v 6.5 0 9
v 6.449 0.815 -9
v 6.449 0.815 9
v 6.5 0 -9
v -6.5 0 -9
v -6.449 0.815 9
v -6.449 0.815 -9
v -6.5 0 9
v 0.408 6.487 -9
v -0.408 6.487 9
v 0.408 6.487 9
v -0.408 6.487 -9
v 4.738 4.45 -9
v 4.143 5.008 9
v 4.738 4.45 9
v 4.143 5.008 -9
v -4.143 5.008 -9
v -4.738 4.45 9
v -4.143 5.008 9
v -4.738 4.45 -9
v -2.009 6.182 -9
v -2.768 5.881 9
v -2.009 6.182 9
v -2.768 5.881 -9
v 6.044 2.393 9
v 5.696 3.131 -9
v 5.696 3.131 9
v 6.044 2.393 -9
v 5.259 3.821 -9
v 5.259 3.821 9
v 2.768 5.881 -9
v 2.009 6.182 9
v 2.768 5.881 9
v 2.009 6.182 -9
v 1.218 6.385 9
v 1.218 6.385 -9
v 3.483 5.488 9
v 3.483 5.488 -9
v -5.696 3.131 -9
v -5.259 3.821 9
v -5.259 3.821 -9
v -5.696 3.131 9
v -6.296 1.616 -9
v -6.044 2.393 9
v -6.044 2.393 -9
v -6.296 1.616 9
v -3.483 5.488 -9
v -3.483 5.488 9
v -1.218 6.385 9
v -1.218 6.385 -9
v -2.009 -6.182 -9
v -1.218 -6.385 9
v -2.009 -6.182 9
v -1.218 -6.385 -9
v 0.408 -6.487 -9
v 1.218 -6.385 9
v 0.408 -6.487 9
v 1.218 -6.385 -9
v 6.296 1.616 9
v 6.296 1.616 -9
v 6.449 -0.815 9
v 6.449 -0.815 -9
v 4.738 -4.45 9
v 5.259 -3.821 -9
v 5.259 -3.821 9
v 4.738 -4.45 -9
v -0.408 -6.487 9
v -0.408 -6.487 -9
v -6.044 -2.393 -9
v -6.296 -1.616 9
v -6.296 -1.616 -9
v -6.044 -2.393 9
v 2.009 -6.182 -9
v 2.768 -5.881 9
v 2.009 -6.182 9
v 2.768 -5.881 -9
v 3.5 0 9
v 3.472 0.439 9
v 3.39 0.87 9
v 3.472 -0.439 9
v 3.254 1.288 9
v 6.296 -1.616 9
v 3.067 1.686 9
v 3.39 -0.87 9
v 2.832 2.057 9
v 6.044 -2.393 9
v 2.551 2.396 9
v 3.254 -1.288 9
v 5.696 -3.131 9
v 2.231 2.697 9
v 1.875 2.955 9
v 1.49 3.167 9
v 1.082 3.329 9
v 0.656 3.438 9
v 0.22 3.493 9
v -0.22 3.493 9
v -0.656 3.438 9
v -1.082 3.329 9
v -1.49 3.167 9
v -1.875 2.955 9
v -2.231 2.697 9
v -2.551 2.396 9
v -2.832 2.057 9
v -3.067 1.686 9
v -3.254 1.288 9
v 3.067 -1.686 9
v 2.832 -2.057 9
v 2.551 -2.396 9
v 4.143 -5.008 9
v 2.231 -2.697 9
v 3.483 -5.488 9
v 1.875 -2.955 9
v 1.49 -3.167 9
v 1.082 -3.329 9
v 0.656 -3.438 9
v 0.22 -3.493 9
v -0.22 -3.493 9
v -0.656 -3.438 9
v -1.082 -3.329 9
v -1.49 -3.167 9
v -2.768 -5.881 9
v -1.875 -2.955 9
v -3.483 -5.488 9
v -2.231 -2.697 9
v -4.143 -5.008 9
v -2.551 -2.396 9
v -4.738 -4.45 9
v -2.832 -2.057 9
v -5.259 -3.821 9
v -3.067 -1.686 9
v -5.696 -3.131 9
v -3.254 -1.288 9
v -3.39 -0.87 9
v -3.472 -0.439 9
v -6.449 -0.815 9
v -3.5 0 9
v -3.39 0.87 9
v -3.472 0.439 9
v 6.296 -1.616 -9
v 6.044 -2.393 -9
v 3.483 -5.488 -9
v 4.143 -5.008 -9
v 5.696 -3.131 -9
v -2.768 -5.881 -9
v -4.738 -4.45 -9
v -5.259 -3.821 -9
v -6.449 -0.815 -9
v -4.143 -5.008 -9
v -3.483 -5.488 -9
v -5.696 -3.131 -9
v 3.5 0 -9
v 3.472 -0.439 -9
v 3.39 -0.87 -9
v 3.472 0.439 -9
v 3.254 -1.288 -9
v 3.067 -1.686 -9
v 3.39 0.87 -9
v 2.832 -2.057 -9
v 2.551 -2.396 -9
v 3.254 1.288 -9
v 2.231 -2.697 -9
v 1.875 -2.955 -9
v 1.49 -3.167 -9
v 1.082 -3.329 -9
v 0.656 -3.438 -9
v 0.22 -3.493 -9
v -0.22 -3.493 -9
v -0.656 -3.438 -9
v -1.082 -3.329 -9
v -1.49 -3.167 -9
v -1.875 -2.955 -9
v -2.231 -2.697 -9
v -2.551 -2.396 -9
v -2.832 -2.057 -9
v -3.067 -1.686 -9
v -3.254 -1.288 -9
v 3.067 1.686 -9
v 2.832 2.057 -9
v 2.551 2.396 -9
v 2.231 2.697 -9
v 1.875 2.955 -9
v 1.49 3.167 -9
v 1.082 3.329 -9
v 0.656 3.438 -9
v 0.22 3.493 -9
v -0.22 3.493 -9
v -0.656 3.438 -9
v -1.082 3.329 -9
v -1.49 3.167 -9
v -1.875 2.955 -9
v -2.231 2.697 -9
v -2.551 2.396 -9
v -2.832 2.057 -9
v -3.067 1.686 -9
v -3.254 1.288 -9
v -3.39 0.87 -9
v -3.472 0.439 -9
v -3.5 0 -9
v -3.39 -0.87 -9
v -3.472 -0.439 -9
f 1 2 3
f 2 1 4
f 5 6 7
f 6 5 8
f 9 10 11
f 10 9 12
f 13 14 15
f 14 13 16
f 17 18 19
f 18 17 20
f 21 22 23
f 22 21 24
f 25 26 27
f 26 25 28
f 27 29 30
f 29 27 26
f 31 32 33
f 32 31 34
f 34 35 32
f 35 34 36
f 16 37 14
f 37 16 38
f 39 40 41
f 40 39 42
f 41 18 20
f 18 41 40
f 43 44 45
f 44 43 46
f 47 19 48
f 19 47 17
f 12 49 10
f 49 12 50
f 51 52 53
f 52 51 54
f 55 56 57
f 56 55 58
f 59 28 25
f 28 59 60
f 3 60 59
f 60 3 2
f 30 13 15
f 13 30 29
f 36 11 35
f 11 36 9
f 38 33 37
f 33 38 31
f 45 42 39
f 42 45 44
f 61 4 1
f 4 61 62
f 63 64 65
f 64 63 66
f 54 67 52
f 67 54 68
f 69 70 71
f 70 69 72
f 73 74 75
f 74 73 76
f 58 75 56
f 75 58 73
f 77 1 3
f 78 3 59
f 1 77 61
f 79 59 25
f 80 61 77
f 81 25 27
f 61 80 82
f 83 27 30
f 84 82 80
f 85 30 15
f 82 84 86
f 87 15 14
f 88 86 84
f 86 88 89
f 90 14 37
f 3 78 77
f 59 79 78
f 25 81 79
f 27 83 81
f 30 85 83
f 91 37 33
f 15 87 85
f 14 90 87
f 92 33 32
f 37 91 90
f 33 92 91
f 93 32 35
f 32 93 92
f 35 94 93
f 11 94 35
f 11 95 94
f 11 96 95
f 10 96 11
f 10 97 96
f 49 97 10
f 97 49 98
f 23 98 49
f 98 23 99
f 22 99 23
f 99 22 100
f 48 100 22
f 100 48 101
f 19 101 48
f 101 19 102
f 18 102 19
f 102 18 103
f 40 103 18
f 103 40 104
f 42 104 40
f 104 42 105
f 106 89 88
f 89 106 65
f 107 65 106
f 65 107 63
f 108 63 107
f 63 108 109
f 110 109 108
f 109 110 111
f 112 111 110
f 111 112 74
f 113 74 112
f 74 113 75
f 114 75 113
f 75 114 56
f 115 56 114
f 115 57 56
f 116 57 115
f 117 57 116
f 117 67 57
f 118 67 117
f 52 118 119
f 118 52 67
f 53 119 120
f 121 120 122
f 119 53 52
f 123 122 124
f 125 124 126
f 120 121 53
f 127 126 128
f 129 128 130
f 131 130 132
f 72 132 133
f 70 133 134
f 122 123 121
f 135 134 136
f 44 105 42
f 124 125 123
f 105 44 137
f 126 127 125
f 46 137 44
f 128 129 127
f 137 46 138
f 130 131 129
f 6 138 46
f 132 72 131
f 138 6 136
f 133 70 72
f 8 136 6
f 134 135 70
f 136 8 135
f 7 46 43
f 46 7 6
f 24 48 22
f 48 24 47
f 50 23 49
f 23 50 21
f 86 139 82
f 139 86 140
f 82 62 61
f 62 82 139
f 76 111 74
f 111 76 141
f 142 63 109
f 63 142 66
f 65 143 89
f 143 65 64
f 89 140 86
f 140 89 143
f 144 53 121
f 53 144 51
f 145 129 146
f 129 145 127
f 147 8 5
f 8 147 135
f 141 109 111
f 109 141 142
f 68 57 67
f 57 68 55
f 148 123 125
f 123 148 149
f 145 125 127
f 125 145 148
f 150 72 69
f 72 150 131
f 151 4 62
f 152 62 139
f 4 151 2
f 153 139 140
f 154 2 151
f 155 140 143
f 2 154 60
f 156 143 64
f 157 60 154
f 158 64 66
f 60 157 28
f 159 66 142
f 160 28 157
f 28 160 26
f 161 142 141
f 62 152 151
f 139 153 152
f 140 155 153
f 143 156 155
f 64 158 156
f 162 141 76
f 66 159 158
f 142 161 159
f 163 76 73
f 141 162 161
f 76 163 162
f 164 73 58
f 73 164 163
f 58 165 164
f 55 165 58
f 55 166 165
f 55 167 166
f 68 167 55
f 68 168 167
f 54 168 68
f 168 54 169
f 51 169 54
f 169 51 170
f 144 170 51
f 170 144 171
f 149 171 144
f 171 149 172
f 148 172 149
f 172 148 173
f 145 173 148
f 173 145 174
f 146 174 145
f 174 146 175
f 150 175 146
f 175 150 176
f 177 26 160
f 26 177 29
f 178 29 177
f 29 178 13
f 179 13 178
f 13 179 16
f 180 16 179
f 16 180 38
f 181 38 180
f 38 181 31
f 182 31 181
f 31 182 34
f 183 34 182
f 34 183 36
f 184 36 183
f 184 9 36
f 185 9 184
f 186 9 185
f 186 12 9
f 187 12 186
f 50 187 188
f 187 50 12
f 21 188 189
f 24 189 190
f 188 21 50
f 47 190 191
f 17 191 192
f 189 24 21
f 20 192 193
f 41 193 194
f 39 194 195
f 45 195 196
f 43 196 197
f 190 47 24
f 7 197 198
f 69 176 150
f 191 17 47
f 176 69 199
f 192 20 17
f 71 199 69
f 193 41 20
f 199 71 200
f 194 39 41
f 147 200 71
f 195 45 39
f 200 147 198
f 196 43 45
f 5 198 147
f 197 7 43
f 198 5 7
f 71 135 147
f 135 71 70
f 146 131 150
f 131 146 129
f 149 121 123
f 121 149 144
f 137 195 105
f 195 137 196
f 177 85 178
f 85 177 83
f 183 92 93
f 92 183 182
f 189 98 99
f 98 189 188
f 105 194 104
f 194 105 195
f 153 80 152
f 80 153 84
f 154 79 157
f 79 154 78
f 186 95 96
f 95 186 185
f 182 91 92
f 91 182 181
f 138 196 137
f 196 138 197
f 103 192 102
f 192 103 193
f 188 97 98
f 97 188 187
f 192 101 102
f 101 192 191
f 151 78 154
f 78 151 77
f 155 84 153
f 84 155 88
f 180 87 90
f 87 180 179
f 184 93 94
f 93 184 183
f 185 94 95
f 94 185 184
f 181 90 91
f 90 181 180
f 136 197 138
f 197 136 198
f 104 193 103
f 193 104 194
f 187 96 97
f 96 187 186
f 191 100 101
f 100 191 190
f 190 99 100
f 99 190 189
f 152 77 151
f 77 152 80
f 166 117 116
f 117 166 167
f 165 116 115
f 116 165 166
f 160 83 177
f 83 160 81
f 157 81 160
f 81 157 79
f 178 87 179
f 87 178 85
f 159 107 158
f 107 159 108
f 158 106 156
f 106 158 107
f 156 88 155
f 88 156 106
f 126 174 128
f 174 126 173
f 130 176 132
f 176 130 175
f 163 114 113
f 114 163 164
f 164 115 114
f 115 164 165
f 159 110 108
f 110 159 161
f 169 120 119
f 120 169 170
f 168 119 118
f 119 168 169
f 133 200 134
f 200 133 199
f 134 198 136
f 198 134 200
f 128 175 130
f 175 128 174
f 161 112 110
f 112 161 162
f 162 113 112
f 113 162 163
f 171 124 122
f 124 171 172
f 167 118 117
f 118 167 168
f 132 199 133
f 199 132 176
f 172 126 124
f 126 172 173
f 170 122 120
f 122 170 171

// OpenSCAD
$fn = 50;


difference() {
	union() {
		translate(v = [0, 0, -9.0000000000]) {
			cylinder(h = 18, r = 6.5000000000);
		}
	}
	union() {
		translate(v = [0, 0, -100.0000000000]) {
			cylinder(h = 200, r = 3.5000000000);
		}
	}
}
